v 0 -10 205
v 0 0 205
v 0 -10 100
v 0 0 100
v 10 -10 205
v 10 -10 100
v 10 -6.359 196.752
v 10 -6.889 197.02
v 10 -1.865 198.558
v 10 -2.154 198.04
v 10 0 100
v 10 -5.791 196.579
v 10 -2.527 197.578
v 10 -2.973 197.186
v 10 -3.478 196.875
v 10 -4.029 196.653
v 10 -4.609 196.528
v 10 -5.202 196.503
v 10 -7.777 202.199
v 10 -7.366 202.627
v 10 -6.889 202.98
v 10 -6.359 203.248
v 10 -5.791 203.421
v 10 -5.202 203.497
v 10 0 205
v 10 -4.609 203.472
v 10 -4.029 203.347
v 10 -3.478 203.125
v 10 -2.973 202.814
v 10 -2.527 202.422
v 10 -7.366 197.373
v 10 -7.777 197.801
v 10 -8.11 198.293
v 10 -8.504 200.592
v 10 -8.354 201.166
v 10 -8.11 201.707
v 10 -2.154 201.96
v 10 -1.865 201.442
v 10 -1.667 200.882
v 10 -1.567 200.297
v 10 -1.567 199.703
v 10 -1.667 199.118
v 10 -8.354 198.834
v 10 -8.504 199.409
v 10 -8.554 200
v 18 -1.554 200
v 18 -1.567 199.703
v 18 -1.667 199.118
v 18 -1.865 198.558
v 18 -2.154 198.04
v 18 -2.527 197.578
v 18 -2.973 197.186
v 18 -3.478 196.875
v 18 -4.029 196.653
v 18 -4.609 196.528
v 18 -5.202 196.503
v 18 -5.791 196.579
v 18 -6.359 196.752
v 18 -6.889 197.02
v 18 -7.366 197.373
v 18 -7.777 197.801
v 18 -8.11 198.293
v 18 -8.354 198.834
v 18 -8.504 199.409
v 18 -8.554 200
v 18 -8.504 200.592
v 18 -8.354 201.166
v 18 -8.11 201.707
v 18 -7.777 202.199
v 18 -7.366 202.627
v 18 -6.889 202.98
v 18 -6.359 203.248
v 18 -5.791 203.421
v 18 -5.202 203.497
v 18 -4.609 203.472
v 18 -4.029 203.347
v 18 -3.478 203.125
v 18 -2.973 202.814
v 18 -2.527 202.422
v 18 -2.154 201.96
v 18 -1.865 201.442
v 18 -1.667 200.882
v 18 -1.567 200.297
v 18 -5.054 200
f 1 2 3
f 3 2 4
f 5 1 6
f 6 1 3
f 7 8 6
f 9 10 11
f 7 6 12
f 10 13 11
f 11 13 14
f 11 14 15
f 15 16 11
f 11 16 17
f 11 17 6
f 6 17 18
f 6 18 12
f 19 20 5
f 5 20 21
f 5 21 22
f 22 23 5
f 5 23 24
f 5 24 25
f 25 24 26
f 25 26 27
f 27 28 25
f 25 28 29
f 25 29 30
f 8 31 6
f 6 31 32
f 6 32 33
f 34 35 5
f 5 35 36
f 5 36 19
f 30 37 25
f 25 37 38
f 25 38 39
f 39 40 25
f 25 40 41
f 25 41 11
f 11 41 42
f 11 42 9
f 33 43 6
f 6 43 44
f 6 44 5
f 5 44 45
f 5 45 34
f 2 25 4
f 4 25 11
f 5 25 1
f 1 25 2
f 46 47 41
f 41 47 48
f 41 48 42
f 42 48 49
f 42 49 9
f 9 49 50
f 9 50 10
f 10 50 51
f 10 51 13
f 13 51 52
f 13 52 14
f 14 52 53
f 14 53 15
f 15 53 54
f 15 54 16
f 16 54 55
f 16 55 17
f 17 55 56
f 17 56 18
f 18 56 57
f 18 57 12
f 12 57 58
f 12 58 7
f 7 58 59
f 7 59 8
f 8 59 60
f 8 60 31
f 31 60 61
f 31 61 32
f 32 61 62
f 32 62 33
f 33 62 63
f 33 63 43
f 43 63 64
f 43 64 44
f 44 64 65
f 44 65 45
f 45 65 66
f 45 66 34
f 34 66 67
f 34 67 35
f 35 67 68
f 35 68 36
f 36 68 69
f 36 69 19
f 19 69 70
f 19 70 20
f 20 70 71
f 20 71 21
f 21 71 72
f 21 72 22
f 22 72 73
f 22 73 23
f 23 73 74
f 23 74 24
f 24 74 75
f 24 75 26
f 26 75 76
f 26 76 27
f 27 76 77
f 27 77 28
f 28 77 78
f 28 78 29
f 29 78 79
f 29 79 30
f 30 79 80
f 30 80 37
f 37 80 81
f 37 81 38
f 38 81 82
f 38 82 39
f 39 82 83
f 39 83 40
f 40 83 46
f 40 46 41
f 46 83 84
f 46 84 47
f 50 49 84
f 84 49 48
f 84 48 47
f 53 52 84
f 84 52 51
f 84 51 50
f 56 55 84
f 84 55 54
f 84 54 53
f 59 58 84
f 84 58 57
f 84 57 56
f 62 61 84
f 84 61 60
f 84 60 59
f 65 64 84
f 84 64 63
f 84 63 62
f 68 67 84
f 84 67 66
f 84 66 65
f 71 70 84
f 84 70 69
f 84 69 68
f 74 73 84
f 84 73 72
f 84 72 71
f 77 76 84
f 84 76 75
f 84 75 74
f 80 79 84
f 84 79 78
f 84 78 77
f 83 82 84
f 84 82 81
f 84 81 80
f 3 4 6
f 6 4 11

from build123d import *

# Parameters (mm, degrees)
SKETCH1_W           = 10
SKETCH1_H           = 10
BOSS_EXTRUDE1_DEPTH = 205
SKETCH2_R           = 3.5
BOSS_EXTRUDE2_DEPTH = 8
SKETCH4_W           = 10
SKETCH4_H           = 10
CUT_EXTRUDE1_DEPTH  = 100


with BuildPart() as part:
    # Sketch1 → Boss-Extrude1 (new body)
    with BuildSketch(Plane.XY):
        with Locations((5, -5)):
            Rectangle(SKETCH1_W, SKETCH1_H)
    extrude(amount=BOSS_EXTRUDE1_DEPTH)

    # Sketch2 → Boss-Extrude2 (add)
    with BuildSketch(Plane(origin=(10, 0, 0), x_dir=(0, 0, -1), z_dir=(1, 0, 0))):
        with Locations((-200, -5.053950804)):
            Circle(SKETCH2_R)
    extrude(amount=BOSS_EXTRUDE2_DEPTH)

    # Sketch4 → Cut-Extrude1 (cut)
    with BuildSketch(Plane(origin=(0, 0, 0), x_dir=(-1, 0, 0), z_dir=(0, 0, -1))):
        with Locations((-5, -5)):
            Rectangle(SKETCH4_W, SKETCH4_H)
    extrude(amount=-CUT_EXTRUDE1_DEPTH, mode=Mode.SUBTRACT)


solid = part.part
